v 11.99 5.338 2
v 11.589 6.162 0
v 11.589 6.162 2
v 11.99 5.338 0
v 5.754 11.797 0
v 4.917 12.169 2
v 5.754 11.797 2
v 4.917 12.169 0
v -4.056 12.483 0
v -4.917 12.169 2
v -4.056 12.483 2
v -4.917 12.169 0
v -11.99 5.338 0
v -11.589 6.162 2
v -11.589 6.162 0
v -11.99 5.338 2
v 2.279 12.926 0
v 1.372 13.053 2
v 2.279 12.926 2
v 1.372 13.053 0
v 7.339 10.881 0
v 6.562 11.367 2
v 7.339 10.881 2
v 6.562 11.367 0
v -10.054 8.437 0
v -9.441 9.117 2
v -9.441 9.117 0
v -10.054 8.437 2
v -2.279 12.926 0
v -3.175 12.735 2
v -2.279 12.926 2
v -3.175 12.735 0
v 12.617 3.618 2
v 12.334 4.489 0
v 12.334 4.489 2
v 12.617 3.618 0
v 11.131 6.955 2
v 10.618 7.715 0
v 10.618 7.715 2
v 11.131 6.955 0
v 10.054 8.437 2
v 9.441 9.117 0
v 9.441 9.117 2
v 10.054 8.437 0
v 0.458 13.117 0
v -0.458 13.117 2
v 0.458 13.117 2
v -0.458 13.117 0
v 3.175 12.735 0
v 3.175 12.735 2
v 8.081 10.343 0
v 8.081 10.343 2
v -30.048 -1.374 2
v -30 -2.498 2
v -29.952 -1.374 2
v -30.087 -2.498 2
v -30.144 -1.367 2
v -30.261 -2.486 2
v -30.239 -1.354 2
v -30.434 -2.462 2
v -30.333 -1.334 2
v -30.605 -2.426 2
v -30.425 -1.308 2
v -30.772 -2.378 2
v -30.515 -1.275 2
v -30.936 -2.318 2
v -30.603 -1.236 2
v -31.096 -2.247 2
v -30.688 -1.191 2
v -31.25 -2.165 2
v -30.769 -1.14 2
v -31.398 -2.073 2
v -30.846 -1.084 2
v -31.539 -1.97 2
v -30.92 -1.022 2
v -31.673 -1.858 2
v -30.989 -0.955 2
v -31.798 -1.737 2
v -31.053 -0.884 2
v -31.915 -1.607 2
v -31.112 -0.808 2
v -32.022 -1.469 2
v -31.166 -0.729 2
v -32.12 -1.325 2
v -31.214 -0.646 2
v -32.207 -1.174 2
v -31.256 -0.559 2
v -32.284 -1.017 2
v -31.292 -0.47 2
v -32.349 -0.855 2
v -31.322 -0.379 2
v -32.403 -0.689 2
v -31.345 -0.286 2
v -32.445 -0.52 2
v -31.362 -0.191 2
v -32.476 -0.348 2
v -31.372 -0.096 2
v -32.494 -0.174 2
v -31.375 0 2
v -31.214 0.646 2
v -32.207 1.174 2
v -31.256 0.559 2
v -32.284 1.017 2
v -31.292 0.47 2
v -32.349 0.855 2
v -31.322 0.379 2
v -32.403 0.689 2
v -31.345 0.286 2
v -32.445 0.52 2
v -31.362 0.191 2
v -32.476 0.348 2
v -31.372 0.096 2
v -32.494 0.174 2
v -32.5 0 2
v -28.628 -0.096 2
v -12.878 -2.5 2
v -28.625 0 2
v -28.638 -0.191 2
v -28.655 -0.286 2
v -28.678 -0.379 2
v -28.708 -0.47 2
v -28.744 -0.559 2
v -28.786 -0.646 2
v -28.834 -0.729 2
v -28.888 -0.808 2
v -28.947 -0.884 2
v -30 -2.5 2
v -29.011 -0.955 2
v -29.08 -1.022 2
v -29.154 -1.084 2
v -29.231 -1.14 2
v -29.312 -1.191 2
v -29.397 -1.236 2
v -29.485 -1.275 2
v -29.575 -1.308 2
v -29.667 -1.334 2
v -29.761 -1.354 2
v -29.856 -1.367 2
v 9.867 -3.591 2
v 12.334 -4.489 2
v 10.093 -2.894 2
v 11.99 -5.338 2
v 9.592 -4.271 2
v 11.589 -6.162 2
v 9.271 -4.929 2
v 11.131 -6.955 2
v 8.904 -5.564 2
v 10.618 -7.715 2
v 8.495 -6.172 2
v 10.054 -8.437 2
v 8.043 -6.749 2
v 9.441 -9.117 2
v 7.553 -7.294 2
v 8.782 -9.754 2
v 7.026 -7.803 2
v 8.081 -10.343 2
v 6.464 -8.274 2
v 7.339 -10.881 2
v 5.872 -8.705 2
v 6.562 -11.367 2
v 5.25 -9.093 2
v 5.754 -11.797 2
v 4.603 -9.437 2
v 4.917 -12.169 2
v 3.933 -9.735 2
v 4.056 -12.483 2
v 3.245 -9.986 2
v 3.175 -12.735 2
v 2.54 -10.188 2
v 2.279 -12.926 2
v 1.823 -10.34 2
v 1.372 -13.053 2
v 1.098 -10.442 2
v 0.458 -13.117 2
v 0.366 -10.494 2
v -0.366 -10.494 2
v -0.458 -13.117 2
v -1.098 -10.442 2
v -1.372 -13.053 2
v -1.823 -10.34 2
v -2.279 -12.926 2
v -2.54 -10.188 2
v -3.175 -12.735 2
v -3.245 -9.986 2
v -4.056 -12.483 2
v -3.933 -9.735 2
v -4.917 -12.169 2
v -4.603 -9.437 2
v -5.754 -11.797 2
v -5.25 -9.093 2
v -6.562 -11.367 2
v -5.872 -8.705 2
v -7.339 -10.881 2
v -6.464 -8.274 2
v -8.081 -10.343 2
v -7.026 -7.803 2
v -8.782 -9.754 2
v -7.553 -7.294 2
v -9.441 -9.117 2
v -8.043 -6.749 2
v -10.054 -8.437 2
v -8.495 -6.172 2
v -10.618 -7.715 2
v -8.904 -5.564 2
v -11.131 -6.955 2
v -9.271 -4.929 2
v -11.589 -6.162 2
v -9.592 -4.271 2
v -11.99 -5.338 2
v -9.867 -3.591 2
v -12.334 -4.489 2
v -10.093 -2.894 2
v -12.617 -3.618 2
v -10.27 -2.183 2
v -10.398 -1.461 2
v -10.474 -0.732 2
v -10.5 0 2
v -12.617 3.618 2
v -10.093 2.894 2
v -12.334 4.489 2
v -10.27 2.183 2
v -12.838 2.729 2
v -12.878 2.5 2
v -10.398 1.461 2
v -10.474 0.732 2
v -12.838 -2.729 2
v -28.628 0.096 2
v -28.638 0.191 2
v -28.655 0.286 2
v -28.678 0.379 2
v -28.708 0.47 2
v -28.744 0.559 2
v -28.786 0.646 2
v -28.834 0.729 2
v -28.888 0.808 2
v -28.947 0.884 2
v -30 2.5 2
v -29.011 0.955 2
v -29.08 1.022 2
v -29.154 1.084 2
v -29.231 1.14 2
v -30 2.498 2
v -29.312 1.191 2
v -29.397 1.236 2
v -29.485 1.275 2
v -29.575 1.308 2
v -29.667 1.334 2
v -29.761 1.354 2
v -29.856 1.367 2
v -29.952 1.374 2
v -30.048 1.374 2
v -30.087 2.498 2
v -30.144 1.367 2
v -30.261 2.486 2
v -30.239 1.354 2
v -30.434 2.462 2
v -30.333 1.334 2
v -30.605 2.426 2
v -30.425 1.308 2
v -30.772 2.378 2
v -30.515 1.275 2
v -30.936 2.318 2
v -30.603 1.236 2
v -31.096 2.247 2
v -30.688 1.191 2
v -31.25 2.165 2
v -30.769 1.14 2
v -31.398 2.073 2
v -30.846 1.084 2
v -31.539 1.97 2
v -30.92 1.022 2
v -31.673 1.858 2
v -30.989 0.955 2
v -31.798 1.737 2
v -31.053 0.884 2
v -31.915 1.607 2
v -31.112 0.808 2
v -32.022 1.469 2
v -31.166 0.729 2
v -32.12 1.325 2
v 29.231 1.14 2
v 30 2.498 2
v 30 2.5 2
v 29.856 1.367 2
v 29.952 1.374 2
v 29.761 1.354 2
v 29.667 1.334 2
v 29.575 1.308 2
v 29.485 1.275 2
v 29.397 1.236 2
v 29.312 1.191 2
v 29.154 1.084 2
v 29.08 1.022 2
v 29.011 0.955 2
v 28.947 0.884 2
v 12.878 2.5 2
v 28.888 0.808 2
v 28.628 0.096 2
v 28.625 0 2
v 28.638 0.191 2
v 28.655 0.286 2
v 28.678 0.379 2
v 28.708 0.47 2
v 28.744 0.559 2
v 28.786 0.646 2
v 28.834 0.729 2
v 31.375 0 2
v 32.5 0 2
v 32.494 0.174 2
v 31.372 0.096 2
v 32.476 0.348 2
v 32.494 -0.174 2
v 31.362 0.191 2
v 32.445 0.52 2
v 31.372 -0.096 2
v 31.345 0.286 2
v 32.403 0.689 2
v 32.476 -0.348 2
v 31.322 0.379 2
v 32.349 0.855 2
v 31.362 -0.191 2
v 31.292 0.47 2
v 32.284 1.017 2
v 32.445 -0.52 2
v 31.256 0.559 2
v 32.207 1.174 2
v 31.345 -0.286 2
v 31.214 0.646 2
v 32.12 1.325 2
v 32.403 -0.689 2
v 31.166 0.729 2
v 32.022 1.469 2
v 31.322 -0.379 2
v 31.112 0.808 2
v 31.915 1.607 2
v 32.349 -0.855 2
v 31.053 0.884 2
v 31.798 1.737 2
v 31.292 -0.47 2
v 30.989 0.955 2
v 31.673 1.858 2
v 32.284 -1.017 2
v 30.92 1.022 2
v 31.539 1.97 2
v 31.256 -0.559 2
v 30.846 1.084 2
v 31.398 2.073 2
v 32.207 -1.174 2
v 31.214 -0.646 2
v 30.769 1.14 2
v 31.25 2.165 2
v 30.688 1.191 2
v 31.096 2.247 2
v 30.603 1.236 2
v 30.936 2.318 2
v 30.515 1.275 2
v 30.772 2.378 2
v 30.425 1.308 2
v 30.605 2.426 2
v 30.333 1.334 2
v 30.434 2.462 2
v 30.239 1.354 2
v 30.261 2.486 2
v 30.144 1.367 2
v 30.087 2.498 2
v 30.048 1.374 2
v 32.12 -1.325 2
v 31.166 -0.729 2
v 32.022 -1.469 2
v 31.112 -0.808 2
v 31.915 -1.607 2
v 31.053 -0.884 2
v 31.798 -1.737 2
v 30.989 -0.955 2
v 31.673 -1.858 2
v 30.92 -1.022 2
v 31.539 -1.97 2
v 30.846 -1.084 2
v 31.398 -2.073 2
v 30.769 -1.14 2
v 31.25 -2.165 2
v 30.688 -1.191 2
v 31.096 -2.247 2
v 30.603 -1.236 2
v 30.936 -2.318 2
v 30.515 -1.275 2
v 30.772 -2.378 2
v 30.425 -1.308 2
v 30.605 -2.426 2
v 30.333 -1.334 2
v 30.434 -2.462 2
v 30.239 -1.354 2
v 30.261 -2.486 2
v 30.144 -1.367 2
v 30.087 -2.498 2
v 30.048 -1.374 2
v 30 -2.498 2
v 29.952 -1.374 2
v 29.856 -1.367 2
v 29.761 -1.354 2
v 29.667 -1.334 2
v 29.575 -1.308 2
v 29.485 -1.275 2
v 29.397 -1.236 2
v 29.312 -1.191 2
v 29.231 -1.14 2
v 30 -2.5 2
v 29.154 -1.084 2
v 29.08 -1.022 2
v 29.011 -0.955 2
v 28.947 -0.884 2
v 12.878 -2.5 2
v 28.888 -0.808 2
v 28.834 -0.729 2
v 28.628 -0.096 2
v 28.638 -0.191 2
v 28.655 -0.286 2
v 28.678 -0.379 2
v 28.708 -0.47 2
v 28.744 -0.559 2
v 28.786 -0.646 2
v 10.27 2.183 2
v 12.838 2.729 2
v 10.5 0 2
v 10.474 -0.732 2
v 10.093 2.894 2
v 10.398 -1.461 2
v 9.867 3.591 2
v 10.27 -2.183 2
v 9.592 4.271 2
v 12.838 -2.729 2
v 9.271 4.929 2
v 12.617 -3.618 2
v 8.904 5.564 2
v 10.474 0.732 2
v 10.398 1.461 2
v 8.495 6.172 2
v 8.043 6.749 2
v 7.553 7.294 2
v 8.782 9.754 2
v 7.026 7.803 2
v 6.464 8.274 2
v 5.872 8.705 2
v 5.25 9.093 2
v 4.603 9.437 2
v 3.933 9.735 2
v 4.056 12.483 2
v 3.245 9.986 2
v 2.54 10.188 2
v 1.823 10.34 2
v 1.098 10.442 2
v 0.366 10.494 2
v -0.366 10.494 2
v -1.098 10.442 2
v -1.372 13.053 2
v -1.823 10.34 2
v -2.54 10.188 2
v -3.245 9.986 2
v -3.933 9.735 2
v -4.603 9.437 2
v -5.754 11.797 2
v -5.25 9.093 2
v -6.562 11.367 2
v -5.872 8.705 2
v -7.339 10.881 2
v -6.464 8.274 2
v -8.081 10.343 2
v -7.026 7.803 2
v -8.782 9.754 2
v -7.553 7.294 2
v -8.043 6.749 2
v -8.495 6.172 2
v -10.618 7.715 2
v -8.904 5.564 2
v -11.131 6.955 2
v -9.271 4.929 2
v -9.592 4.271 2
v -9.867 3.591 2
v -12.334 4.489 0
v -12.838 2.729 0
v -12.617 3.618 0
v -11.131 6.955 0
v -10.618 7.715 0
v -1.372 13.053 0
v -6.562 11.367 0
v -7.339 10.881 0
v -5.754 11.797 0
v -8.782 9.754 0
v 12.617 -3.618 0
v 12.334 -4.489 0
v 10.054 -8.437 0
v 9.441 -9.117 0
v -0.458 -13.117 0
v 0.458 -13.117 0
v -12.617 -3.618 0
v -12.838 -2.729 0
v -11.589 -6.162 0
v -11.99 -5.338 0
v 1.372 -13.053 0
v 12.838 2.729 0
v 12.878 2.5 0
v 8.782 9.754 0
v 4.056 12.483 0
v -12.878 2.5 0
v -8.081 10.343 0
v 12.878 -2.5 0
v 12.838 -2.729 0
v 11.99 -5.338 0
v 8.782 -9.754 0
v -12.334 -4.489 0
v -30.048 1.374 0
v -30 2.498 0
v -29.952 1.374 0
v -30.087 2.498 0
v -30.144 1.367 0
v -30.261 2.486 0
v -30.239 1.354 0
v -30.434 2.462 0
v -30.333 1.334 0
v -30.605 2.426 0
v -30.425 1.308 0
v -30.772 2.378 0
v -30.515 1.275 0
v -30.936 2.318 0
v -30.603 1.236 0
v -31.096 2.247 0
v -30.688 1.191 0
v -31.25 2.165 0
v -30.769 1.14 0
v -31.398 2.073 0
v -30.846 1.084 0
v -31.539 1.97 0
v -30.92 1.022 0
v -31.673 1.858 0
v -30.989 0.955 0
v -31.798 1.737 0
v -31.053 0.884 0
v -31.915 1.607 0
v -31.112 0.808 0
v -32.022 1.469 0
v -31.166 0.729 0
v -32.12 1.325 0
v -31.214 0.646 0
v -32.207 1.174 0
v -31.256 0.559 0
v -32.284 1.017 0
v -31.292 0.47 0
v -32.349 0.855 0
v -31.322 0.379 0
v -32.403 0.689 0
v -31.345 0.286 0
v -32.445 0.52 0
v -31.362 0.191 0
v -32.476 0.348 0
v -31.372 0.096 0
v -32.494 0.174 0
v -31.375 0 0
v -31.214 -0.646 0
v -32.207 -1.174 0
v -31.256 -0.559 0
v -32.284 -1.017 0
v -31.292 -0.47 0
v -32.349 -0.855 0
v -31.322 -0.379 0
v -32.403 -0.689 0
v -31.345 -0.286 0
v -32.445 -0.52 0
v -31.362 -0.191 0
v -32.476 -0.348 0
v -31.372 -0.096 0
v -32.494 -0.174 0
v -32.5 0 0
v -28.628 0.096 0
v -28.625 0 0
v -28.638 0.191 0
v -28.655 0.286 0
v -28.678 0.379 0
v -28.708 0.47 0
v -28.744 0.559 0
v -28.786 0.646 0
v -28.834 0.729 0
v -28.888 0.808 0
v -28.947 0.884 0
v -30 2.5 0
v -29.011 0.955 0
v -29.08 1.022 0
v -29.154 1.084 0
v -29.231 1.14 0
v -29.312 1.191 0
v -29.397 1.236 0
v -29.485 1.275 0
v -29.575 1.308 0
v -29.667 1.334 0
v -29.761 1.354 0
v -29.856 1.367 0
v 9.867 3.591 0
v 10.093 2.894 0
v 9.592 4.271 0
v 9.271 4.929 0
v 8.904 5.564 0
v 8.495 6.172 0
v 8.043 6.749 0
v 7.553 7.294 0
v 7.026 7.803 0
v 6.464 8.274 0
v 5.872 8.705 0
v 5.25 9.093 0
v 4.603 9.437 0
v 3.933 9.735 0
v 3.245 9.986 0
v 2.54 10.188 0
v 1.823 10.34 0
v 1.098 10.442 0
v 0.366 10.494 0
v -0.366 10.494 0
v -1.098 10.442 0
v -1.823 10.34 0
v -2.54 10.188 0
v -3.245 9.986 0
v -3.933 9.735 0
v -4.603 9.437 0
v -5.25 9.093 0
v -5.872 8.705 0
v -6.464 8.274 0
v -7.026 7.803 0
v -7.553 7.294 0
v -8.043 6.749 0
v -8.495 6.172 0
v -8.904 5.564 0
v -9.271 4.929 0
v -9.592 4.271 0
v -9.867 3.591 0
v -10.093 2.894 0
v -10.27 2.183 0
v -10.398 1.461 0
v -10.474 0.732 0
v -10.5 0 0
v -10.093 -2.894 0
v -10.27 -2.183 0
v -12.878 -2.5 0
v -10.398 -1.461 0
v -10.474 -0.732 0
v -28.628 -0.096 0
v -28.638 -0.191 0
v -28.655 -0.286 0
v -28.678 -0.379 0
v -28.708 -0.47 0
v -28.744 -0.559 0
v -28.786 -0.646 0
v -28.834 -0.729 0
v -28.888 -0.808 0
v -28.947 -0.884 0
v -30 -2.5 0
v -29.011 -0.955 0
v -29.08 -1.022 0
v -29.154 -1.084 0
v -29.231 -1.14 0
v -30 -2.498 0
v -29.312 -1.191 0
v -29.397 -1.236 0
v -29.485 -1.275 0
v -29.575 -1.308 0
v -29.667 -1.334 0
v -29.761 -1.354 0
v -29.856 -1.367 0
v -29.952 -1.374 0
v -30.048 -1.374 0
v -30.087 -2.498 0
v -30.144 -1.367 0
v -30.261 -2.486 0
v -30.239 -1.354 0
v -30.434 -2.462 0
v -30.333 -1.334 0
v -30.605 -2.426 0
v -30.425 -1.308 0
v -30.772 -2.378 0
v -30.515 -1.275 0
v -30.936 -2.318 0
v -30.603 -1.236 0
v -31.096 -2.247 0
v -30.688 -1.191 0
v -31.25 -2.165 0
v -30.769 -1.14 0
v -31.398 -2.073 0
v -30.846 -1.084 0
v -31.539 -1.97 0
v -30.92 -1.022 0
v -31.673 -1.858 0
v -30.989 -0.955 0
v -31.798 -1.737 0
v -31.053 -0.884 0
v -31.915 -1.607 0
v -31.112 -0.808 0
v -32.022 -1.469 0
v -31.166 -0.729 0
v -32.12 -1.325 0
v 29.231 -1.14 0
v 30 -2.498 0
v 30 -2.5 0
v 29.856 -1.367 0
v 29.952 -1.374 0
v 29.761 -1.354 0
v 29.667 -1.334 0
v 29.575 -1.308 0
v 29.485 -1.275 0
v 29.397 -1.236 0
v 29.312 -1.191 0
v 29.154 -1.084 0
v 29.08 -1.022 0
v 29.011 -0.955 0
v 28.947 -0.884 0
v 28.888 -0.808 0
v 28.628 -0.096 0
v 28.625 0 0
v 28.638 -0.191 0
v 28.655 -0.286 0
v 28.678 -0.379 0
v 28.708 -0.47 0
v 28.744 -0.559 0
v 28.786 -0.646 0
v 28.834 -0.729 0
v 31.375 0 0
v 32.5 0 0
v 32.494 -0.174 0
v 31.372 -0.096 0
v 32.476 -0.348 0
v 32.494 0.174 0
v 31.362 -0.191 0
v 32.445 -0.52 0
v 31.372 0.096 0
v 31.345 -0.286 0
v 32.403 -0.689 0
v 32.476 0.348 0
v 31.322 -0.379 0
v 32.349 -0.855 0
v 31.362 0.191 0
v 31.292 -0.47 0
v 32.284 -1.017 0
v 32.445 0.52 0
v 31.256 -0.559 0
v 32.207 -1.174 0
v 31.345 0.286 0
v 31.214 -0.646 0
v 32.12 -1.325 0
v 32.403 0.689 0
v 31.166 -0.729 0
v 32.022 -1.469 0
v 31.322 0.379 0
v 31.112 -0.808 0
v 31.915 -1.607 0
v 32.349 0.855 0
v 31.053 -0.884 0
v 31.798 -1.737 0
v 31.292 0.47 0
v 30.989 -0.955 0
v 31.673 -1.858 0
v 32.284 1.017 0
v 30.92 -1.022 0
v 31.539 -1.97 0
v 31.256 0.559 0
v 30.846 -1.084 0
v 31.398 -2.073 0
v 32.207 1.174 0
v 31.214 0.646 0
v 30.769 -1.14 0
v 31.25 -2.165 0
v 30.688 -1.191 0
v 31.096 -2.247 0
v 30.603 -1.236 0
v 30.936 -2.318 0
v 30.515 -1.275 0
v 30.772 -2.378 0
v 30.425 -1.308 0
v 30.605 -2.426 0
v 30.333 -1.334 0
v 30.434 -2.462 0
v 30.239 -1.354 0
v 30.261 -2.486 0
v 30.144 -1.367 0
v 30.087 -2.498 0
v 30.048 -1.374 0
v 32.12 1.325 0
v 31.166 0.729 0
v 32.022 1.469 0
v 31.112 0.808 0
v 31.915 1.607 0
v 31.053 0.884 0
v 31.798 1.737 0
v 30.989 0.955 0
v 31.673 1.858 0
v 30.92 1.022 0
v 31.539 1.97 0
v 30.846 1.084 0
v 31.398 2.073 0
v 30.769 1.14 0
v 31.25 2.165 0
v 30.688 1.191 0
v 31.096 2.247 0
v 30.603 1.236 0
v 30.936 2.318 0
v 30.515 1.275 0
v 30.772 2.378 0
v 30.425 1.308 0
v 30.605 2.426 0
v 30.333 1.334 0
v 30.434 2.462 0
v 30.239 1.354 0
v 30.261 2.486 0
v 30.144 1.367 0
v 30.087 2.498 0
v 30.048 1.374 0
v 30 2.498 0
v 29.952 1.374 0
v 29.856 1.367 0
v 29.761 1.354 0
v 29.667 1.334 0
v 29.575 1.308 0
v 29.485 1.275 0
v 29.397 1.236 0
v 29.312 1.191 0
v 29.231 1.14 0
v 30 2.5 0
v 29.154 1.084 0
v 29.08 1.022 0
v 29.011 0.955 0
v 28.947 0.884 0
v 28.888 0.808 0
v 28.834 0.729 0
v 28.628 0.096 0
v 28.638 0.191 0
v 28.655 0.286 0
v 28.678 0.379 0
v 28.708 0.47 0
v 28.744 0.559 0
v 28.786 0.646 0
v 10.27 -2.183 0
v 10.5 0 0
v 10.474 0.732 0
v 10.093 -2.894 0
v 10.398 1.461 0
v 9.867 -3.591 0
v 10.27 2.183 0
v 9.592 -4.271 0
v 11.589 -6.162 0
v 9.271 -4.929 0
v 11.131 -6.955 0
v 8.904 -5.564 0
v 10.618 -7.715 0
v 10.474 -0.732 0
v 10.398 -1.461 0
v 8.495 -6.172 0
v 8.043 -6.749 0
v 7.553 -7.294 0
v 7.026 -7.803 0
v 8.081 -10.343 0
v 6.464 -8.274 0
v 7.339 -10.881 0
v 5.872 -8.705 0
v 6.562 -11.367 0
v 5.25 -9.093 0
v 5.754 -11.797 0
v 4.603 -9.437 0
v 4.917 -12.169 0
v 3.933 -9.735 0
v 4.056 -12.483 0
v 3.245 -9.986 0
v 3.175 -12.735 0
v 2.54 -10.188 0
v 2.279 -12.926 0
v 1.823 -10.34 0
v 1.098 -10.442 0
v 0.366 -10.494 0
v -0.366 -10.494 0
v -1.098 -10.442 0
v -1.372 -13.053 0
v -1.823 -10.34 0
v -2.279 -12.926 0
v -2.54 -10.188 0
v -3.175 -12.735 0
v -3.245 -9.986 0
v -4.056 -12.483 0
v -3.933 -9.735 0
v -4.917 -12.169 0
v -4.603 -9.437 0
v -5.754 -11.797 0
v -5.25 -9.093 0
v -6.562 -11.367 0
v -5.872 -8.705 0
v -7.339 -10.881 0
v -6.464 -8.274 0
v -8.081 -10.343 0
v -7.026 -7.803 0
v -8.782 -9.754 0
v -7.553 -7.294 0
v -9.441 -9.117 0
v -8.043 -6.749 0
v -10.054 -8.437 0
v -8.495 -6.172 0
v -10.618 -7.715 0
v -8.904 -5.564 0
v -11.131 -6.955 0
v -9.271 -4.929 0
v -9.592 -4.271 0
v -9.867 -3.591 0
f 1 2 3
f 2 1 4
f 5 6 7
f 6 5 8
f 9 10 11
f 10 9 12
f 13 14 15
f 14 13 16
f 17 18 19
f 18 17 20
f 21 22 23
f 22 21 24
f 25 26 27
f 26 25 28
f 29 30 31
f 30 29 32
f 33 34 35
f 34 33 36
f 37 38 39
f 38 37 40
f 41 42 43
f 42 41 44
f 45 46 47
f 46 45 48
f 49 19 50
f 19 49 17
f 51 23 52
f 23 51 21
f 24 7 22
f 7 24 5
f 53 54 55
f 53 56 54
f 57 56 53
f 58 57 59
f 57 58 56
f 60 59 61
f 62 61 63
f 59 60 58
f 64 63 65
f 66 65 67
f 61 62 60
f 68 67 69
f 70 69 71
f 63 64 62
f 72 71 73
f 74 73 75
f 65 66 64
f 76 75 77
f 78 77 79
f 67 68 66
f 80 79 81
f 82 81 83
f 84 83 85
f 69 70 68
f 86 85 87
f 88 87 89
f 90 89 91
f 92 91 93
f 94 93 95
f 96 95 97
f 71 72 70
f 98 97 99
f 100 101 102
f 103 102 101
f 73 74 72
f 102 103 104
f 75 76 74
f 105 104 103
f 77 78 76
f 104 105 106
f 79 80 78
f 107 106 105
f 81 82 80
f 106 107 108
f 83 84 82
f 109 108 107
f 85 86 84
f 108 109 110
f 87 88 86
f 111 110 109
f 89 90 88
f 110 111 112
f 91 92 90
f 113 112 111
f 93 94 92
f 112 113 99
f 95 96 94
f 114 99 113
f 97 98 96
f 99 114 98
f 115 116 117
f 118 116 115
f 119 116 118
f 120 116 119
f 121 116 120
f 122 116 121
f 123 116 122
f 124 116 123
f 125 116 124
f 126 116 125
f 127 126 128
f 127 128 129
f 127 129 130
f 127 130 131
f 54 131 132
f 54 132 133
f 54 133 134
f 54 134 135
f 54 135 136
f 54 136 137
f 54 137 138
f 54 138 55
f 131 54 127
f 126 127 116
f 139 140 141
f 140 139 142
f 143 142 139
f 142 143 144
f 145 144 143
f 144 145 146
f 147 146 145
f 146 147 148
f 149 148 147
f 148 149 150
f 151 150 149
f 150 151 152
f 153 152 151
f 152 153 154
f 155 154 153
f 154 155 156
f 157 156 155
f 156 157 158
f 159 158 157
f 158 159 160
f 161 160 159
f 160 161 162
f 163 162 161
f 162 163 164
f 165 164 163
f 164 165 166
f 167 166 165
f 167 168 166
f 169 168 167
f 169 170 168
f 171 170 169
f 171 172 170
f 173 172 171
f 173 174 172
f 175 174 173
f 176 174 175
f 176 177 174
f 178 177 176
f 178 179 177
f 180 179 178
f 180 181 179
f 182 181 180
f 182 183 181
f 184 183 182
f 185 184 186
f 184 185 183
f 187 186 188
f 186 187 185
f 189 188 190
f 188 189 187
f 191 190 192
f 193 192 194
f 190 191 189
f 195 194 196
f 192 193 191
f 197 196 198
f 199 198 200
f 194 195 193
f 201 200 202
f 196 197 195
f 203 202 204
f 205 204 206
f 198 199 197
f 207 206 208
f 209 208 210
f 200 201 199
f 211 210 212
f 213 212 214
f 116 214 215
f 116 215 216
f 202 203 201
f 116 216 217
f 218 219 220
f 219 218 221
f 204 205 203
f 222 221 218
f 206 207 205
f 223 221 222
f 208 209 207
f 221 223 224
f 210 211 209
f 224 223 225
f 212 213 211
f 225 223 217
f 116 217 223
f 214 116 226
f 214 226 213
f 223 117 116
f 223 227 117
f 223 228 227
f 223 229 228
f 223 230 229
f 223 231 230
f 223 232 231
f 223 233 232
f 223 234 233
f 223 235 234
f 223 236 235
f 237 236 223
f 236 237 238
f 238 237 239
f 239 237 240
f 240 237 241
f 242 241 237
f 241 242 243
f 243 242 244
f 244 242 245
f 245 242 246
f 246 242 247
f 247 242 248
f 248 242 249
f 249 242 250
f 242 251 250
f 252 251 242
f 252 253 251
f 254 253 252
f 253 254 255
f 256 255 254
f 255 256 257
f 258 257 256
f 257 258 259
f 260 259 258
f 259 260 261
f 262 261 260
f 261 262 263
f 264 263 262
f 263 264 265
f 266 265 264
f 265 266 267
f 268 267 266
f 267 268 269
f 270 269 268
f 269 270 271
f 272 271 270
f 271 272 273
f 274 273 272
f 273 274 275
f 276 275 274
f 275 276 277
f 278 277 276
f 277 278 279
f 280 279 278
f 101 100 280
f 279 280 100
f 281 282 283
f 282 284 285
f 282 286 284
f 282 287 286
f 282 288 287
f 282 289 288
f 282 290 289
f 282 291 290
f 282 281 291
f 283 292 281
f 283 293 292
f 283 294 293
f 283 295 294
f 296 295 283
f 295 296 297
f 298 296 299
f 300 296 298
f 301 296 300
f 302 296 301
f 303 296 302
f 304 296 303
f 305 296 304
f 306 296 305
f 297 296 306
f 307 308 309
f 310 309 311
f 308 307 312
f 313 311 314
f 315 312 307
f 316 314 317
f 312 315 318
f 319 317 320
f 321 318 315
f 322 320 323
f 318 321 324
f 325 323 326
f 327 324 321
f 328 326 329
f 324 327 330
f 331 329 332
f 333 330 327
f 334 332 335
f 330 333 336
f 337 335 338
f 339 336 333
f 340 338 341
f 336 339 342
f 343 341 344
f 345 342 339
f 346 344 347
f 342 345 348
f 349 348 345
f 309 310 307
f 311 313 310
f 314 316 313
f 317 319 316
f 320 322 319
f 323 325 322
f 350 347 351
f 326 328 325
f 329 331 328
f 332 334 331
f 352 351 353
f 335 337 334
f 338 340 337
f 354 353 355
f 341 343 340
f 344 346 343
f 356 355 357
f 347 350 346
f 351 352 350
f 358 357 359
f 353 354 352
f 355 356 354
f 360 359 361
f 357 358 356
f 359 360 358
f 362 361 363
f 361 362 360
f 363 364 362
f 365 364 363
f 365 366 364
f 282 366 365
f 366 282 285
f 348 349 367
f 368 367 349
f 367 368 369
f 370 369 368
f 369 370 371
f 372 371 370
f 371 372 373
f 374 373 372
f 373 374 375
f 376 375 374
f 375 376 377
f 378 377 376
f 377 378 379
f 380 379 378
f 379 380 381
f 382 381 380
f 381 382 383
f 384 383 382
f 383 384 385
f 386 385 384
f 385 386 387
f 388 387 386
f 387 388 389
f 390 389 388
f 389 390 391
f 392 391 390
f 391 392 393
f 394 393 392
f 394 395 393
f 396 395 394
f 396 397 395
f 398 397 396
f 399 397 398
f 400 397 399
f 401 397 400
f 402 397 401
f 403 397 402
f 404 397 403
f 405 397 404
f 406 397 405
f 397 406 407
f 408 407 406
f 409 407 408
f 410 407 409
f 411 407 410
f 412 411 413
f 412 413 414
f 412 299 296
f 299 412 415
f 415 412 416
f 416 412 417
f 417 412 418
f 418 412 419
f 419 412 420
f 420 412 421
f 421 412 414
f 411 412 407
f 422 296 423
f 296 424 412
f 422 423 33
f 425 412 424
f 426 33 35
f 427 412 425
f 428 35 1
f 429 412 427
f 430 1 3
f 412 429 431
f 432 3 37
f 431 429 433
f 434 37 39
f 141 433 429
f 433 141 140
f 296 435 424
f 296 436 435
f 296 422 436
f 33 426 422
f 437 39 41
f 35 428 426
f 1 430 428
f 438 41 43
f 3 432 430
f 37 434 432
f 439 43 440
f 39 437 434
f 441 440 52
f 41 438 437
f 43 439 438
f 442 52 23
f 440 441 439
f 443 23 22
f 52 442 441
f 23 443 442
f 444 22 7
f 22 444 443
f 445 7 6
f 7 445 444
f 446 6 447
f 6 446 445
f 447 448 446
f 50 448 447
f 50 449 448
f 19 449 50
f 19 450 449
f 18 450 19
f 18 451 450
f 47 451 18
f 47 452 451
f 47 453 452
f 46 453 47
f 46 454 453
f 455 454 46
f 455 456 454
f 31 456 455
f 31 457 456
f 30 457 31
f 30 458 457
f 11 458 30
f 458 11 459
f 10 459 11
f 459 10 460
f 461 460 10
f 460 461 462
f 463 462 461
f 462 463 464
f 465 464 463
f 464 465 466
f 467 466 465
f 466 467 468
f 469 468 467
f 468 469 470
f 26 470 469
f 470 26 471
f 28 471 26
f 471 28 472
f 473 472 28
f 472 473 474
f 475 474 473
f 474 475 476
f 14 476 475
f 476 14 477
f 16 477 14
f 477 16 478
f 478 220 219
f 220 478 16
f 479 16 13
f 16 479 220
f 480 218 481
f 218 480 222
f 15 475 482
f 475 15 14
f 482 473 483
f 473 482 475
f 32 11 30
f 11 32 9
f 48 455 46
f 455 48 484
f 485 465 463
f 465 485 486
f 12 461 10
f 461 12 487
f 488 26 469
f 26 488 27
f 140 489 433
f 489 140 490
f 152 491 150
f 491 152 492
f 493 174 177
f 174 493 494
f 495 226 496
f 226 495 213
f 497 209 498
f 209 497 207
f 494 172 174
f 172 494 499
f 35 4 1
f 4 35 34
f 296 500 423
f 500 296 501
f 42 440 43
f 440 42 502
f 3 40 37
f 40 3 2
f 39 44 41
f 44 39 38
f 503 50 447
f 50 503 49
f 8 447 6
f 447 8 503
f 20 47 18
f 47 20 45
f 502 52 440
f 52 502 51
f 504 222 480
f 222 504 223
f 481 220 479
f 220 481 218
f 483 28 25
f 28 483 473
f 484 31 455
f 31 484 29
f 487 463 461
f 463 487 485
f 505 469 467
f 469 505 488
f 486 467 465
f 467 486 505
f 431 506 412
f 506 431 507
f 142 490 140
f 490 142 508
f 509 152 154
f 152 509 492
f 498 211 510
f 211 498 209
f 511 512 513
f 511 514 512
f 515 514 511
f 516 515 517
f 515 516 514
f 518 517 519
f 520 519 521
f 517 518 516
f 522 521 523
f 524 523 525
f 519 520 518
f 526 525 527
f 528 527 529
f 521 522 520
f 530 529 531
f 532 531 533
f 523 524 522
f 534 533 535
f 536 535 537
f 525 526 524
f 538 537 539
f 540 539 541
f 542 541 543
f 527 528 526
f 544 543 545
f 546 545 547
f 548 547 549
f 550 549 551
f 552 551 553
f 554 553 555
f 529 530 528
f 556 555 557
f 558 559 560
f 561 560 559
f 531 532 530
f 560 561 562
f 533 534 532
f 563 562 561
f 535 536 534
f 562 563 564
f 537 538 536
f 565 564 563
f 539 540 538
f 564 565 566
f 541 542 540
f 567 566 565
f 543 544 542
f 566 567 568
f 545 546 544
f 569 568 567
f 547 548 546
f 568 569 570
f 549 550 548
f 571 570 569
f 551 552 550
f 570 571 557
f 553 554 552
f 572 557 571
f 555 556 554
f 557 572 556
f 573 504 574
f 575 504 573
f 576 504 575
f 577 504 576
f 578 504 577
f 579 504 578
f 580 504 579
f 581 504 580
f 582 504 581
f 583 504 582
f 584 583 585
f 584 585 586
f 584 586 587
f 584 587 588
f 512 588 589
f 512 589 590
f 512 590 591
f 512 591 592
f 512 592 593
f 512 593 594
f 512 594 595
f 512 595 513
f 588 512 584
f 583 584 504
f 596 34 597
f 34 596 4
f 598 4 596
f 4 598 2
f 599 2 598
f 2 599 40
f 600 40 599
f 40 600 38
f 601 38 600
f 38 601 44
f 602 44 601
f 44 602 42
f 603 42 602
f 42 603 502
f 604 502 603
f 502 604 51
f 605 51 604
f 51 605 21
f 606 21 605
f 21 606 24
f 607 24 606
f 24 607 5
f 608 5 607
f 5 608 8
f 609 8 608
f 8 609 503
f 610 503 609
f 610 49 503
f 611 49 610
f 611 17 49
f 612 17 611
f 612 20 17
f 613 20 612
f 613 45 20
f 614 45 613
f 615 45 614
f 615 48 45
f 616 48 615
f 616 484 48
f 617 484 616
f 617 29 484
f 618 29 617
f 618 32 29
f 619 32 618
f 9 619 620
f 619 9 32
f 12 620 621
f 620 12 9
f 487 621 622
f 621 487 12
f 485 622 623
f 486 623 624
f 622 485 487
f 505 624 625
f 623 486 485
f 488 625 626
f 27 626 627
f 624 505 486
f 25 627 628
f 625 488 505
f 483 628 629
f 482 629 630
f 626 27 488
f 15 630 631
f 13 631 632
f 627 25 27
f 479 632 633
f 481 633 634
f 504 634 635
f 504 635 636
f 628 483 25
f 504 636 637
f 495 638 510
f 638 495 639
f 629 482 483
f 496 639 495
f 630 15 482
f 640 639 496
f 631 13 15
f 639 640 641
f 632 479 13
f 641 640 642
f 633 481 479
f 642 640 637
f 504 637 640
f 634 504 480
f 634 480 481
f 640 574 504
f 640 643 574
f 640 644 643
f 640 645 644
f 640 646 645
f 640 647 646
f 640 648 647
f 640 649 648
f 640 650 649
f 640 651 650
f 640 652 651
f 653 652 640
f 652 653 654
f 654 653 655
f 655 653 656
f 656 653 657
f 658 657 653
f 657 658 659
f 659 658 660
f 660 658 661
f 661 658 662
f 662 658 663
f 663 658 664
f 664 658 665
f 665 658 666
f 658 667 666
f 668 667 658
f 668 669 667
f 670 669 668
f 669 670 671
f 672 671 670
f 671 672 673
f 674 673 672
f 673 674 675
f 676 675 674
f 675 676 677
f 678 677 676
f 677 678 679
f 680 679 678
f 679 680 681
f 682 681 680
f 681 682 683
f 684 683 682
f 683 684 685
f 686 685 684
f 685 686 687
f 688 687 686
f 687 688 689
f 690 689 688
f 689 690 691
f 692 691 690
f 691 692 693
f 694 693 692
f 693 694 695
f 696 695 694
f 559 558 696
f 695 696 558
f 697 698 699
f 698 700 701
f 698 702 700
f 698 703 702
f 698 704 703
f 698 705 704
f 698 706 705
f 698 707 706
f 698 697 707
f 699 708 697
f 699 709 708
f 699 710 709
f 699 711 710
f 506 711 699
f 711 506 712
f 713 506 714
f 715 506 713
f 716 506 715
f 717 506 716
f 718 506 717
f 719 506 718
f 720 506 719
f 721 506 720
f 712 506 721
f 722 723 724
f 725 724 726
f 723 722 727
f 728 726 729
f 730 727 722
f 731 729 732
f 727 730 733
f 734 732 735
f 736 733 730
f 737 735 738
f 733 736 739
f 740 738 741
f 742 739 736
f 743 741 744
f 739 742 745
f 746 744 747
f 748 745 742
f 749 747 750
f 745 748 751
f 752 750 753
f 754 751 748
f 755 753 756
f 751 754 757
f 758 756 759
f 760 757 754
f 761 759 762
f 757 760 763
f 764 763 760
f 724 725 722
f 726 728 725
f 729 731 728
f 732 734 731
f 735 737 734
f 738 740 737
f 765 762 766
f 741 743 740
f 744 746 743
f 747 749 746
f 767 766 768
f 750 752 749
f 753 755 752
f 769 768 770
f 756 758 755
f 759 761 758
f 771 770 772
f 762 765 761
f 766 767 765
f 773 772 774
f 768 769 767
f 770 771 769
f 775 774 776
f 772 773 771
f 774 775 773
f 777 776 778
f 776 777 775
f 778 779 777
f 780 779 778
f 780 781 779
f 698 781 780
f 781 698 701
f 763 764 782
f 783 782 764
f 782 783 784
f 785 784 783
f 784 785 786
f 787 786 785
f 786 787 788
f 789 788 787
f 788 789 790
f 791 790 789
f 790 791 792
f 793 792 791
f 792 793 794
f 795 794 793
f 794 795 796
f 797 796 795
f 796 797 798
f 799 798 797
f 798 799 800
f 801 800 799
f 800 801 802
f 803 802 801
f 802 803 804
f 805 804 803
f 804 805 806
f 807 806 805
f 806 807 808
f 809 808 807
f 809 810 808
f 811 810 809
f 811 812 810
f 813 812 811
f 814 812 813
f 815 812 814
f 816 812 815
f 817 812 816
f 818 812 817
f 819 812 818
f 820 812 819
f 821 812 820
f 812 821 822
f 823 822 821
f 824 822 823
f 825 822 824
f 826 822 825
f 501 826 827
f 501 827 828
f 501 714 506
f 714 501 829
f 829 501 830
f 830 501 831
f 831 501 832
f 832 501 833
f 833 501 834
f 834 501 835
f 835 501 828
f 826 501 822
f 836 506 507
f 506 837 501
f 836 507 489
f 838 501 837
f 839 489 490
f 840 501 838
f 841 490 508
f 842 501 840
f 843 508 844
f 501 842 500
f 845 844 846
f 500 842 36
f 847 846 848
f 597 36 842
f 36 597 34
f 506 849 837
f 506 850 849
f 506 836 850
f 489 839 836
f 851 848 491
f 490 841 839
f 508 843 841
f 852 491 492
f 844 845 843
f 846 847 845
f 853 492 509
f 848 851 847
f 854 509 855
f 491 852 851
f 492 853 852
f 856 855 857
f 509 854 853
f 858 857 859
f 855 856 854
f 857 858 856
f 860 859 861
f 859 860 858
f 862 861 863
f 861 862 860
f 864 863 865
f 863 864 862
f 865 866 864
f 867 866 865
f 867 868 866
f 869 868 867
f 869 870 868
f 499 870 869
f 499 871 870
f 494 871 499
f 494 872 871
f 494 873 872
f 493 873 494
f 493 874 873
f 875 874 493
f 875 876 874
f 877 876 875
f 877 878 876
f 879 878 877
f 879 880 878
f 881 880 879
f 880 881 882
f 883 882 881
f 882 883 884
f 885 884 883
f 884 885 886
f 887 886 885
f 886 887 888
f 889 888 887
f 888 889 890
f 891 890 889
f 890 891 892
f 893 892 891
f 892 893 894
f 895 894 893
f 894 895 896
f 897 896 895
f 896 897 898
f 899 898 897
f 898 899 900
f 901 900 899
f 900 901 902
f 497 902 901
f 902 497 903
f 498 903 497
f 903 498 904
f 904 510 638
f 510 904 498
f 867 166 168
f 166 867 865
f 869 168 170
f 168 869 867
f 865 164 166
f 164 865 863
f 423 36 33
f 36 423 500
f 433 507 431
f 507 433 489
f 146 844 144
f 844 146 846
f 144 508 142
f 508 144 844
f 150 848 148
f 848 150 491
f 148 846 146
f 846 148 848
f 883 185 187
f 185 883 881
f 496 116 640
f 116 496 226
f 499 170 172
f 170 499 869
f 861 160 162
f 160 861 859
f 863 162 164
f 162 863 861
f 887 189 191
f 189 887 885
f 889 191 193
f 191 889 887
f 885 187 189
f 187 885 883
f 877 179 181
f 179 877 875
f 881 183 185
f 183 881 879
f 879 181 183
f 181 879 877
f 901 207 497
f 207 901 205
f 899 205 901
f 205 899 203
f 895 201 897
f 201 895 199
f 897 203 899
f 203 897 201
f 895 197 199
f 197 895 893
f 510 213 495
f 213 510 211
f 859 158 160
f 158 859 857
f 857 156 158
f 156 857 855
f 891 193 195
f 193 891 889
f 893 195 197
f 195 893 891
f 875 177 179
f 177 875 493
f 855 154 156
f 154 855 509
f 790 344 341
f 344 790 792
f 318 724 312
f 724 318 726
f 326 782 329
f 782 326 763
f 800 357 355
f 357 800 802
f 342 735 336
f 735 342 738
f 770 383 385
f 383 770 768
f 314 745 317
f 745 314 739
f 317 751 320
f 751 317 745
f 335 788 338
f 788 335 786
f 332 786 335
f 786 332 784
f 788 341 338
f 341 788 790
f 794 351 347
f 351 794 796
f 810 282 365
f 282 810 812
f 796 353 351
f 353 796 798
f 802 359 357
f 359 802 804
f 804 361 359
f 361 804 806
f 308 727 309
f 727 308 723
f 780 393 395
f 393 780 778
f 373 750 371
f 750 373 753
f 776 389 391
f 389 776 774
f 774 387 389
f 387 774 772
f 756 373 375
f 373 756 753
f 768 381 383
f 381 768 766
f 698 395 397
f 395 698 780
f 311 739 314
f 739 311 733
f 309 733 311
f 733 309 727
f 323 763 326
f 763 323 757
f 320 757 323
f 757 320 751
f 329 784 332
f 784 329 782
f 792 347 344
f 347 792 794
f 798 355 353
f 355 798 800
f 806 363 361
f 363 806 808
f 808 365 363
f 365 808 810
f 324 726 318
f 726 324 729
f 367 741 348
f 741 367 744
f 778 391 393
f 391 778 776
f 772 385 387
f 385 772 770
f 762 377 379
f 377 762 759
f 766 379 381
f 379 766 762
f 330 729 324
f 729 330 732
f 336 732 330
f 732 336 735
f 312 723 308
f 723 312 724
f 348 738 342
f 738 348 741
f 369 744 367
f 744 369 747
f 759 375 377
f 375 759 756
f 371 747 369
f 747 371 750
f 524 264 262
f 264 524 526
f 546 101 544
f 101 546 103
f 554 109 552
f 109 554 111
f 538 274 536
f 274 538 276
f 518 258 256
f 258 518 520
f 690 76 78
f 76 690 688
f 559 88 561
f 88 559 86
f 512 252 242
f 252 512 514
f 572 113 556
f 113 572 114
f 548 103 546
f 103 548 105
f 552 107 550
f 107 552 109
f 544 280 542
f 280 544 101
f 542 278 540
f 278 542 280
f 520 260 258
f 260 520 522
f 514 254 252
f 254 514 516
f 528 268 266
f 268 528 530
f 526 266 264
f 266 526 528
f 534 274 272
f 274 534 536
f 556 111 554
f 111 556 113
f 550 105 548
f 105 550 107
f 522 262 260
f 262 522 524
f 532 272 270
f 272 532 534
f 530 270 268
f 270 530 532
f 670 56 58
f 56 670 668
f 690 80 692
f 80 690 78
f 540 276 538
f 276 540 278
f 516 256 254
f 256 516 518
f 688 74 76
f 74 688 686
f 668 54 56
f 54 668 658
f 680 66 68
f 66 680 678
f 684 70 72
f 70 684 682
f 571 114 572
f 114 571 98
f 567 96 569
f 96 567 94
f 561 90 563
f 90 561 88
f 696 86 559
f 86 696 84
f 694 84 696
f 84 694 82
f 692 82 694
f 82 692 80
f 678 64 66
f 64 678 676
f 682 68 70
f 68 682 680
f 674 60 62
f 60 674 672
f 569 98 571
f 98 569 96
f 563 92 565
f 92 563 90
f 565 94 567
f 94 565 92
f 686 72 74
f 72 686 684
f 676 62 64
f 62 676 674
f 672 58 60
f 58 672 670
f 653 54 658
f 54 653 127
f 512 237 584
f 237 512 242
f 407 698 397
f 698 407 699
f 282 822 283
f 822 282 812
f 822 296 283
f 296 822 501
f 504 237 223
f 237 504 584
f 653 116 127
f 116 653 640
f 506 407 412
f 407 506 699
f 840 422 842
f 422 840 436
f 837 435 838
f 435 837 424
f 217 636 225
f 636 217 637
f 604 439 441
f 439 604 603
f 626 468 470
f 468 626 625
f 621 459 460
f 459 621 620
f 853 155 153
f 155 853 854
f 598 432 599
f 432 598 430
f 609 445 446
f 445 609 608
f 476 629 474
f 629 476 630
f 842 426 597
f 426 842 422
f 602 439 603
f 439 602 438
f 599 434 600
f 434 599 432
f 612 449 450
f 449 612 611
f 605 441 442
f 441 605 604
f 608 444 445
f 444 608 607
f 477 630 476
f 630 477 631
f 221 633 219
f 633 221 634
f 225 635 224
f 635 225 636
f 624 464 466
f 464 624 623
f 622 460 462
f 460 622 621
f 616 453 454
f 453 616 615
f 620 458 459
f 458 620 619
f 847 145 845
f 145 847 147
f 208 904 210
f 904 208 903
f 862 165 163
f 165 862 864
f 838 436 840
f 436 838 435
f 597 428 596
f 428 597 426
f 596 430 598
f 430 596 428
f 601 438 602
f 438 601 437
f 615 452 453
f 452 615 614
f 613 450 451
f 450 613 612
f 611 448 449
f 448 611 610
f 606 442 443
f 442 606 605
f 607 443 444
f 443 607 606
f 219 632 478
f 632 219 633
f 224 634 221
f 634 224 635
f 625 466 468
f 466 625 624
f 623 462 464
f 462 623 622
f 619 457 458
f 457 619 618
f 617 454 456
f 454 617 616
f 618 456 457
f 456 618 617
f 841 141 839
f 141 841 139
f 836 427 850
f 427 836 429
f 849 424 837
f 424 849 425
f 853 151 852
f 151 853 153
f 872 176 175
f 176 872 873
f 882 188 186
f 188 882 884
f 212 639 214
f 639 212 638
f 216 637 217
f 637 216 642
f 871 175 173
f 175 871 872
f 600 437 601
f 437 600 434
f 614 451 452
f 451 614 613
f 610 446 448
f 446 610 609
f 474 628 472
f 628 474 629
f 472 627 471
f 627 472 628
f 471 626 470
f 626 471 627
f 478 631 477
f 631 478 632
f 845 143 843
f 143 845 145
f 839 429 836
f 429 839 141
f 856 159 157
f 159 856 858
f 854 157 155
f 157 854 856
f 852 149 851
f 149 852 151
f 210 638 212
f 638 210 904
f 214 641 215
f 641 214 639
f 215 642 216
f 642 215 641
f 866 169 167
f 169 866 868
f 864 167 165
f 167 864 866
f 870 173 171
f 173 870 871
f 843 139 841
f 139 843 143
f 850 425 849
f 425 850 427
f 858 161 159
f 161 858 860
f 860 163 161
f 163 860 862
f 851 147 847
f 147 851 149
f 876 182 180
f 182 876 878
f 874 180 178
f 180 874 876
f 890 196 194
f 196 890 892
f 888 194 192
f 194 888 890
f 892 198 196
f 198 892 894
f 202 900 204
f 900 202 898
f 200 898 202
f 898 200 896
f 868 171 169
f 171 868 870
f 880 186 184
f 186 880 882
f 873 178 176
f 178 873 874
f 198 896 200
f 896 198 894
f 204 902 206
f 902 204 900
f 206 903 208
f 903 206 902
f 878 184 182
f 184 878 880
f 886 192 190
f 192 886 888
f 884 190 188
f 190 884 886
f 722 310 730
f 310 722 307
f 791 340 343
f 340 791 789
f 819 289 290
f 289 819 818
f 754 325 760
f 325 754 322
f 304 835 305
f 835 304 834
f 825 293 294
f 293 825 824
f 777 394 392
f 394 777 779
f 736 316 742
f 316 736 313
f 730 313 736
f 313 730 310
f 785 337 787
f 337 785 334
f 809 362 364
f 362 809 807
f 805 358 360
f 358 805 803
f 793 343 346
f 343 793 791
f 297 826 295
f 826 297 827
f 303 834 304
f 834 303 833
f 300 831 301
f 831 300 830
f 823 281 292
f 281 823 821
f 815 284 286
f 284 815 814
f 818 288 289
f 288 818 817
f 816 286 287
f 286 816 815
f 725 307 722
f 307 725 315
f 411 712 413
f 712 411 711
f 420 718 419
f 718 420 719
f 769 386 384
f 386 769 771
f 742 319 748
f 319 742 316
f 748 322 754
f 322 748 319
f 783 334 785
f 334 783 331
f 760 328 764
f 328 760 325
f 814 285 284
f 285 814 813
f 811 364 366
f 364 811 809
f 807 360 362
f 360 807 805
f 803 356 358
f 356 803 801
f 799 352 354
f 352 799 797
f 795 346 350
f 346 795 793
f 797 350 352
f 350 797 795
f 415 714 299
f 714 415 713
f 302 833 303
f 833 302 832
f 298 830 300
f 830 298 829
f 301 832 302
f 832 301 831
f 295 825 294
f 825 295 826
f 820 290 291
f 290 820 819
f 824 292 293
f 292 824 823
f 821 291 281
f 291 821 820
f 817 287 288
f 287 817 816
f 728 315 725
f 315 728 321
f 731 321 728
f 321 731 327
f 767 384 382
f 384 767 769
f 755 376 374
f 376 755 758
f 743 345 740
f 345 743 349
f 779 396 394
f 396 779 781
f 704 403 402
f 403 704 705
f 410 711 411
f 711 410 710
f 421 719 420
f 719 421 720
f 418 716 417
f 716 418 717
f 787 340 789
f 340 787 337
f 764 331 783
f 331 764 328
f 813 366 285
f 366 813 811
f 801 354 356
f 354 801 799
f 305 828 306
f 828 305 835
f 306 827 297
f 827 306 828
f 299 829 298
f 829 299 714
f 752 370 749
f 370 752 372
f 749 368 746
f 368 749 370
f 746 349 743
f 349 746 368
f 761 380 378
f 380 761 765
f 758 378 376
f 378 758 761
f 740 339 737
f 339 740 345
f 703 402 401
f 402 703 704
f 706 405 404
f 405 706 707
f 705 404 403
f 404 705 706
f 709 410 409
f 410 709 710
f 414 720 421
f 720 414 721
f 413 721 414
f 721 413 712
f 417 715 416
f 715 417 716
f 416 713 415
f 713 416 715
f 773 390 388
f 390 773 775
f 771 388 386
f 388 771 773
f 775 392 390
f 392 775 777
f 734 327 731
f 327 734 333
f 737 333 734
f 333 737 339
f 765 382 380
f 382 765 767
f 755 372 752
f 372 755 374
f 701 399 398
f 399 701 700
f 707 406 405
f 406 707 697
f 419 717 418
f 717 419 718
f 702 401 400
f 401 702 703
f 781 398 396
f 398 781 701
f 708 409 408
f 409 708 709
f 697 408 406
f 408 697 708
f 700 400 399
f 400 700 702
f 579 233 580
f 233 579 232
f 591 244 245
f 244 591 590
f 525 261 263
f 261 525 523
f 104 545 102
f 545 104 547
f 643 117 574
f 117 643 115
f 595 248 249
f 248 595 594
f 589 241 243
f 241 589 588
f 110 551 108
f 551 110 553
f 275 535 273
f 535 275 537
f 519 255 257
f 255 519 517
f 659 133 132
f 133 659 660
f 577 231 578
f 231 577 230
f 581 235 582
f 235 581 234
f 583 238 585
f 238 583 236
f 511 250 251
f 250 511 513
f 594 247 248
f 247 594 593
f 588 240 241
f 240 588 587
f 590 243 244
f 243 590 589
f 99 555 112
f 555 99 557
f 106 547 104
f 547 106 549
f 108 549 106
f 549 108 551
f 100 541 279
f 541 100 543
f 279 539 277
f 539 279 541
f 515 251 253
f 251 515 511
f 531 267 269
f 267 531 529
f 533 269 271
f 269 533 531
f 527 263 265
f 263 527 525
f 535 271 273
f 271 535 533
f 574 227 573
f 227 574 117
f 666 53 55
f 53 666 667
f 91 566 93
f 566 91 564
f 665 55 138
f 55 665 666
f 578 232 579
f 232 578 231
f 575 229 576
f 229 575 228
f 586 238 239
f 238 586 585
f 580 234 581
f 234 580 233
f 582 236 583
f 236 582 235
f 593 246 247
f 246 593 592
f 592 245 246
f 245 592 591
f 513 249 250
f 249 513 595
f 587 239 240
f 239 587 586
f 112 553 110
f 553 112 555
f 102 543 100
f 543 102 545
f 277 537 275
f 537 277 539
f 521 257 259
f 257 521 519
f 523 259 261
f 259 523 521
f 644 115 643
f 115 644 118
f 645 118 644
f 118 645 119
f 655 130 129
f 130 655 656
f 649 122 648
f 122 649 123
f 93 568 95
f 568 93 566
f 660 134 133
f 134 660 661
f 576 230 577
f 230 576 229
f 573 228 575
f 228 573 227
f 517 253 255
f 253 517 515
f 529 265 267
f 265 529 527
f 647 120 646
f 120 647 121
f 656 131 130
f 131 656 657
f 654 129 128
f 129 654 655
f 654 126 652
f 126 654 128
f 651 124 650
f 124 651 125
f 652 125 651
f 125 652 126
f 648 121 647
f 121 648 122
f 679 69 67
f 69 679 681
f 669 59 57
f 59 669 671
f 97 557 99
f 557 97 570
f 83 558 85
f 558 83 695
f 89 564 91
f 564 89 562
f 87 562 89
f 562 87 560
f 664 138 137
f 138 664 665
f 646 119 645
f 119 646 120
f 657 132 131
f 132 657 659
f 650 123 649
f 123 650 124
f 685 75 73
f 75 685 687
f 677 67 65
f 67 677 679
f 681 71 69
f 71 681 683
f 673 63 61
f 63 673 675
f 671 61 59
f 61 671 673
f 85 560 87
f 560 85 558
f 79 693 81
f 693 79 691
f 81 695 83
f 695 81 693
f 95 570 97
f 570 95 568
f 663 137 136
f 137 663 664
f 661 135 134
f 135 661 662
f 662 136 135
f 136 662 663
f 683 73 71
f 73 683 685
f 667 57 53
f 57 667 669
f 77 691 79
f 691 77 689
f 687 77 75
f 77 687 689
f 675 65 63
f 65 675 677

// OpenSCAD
$fn = 90;

h = 2;
r1 = 2.75/2;

// Lente tubo
lr1 = 23/2 -1; // TODO verificar medida

d2 = 20;

difference() {
  union() {
    cylinder(r=1.25*lr1, h=h);
    translate([1.5*d2, 0]) cylinder(r=2.5, h=h);
    translate([-1.5*d2, 0]) cylinder(r=2.5, h=h);
    translate([-1.5*d2, -2.5]) cube([2*1.5*d2, 5, h]);
  }

  cylinder(r=lr1, h=h);
  translate([1.5*d2, 0]) cylinder(h=h, r=r1);
  translate([-1.5*d2, 0]) cylinder(h=h, r=r1);

}
